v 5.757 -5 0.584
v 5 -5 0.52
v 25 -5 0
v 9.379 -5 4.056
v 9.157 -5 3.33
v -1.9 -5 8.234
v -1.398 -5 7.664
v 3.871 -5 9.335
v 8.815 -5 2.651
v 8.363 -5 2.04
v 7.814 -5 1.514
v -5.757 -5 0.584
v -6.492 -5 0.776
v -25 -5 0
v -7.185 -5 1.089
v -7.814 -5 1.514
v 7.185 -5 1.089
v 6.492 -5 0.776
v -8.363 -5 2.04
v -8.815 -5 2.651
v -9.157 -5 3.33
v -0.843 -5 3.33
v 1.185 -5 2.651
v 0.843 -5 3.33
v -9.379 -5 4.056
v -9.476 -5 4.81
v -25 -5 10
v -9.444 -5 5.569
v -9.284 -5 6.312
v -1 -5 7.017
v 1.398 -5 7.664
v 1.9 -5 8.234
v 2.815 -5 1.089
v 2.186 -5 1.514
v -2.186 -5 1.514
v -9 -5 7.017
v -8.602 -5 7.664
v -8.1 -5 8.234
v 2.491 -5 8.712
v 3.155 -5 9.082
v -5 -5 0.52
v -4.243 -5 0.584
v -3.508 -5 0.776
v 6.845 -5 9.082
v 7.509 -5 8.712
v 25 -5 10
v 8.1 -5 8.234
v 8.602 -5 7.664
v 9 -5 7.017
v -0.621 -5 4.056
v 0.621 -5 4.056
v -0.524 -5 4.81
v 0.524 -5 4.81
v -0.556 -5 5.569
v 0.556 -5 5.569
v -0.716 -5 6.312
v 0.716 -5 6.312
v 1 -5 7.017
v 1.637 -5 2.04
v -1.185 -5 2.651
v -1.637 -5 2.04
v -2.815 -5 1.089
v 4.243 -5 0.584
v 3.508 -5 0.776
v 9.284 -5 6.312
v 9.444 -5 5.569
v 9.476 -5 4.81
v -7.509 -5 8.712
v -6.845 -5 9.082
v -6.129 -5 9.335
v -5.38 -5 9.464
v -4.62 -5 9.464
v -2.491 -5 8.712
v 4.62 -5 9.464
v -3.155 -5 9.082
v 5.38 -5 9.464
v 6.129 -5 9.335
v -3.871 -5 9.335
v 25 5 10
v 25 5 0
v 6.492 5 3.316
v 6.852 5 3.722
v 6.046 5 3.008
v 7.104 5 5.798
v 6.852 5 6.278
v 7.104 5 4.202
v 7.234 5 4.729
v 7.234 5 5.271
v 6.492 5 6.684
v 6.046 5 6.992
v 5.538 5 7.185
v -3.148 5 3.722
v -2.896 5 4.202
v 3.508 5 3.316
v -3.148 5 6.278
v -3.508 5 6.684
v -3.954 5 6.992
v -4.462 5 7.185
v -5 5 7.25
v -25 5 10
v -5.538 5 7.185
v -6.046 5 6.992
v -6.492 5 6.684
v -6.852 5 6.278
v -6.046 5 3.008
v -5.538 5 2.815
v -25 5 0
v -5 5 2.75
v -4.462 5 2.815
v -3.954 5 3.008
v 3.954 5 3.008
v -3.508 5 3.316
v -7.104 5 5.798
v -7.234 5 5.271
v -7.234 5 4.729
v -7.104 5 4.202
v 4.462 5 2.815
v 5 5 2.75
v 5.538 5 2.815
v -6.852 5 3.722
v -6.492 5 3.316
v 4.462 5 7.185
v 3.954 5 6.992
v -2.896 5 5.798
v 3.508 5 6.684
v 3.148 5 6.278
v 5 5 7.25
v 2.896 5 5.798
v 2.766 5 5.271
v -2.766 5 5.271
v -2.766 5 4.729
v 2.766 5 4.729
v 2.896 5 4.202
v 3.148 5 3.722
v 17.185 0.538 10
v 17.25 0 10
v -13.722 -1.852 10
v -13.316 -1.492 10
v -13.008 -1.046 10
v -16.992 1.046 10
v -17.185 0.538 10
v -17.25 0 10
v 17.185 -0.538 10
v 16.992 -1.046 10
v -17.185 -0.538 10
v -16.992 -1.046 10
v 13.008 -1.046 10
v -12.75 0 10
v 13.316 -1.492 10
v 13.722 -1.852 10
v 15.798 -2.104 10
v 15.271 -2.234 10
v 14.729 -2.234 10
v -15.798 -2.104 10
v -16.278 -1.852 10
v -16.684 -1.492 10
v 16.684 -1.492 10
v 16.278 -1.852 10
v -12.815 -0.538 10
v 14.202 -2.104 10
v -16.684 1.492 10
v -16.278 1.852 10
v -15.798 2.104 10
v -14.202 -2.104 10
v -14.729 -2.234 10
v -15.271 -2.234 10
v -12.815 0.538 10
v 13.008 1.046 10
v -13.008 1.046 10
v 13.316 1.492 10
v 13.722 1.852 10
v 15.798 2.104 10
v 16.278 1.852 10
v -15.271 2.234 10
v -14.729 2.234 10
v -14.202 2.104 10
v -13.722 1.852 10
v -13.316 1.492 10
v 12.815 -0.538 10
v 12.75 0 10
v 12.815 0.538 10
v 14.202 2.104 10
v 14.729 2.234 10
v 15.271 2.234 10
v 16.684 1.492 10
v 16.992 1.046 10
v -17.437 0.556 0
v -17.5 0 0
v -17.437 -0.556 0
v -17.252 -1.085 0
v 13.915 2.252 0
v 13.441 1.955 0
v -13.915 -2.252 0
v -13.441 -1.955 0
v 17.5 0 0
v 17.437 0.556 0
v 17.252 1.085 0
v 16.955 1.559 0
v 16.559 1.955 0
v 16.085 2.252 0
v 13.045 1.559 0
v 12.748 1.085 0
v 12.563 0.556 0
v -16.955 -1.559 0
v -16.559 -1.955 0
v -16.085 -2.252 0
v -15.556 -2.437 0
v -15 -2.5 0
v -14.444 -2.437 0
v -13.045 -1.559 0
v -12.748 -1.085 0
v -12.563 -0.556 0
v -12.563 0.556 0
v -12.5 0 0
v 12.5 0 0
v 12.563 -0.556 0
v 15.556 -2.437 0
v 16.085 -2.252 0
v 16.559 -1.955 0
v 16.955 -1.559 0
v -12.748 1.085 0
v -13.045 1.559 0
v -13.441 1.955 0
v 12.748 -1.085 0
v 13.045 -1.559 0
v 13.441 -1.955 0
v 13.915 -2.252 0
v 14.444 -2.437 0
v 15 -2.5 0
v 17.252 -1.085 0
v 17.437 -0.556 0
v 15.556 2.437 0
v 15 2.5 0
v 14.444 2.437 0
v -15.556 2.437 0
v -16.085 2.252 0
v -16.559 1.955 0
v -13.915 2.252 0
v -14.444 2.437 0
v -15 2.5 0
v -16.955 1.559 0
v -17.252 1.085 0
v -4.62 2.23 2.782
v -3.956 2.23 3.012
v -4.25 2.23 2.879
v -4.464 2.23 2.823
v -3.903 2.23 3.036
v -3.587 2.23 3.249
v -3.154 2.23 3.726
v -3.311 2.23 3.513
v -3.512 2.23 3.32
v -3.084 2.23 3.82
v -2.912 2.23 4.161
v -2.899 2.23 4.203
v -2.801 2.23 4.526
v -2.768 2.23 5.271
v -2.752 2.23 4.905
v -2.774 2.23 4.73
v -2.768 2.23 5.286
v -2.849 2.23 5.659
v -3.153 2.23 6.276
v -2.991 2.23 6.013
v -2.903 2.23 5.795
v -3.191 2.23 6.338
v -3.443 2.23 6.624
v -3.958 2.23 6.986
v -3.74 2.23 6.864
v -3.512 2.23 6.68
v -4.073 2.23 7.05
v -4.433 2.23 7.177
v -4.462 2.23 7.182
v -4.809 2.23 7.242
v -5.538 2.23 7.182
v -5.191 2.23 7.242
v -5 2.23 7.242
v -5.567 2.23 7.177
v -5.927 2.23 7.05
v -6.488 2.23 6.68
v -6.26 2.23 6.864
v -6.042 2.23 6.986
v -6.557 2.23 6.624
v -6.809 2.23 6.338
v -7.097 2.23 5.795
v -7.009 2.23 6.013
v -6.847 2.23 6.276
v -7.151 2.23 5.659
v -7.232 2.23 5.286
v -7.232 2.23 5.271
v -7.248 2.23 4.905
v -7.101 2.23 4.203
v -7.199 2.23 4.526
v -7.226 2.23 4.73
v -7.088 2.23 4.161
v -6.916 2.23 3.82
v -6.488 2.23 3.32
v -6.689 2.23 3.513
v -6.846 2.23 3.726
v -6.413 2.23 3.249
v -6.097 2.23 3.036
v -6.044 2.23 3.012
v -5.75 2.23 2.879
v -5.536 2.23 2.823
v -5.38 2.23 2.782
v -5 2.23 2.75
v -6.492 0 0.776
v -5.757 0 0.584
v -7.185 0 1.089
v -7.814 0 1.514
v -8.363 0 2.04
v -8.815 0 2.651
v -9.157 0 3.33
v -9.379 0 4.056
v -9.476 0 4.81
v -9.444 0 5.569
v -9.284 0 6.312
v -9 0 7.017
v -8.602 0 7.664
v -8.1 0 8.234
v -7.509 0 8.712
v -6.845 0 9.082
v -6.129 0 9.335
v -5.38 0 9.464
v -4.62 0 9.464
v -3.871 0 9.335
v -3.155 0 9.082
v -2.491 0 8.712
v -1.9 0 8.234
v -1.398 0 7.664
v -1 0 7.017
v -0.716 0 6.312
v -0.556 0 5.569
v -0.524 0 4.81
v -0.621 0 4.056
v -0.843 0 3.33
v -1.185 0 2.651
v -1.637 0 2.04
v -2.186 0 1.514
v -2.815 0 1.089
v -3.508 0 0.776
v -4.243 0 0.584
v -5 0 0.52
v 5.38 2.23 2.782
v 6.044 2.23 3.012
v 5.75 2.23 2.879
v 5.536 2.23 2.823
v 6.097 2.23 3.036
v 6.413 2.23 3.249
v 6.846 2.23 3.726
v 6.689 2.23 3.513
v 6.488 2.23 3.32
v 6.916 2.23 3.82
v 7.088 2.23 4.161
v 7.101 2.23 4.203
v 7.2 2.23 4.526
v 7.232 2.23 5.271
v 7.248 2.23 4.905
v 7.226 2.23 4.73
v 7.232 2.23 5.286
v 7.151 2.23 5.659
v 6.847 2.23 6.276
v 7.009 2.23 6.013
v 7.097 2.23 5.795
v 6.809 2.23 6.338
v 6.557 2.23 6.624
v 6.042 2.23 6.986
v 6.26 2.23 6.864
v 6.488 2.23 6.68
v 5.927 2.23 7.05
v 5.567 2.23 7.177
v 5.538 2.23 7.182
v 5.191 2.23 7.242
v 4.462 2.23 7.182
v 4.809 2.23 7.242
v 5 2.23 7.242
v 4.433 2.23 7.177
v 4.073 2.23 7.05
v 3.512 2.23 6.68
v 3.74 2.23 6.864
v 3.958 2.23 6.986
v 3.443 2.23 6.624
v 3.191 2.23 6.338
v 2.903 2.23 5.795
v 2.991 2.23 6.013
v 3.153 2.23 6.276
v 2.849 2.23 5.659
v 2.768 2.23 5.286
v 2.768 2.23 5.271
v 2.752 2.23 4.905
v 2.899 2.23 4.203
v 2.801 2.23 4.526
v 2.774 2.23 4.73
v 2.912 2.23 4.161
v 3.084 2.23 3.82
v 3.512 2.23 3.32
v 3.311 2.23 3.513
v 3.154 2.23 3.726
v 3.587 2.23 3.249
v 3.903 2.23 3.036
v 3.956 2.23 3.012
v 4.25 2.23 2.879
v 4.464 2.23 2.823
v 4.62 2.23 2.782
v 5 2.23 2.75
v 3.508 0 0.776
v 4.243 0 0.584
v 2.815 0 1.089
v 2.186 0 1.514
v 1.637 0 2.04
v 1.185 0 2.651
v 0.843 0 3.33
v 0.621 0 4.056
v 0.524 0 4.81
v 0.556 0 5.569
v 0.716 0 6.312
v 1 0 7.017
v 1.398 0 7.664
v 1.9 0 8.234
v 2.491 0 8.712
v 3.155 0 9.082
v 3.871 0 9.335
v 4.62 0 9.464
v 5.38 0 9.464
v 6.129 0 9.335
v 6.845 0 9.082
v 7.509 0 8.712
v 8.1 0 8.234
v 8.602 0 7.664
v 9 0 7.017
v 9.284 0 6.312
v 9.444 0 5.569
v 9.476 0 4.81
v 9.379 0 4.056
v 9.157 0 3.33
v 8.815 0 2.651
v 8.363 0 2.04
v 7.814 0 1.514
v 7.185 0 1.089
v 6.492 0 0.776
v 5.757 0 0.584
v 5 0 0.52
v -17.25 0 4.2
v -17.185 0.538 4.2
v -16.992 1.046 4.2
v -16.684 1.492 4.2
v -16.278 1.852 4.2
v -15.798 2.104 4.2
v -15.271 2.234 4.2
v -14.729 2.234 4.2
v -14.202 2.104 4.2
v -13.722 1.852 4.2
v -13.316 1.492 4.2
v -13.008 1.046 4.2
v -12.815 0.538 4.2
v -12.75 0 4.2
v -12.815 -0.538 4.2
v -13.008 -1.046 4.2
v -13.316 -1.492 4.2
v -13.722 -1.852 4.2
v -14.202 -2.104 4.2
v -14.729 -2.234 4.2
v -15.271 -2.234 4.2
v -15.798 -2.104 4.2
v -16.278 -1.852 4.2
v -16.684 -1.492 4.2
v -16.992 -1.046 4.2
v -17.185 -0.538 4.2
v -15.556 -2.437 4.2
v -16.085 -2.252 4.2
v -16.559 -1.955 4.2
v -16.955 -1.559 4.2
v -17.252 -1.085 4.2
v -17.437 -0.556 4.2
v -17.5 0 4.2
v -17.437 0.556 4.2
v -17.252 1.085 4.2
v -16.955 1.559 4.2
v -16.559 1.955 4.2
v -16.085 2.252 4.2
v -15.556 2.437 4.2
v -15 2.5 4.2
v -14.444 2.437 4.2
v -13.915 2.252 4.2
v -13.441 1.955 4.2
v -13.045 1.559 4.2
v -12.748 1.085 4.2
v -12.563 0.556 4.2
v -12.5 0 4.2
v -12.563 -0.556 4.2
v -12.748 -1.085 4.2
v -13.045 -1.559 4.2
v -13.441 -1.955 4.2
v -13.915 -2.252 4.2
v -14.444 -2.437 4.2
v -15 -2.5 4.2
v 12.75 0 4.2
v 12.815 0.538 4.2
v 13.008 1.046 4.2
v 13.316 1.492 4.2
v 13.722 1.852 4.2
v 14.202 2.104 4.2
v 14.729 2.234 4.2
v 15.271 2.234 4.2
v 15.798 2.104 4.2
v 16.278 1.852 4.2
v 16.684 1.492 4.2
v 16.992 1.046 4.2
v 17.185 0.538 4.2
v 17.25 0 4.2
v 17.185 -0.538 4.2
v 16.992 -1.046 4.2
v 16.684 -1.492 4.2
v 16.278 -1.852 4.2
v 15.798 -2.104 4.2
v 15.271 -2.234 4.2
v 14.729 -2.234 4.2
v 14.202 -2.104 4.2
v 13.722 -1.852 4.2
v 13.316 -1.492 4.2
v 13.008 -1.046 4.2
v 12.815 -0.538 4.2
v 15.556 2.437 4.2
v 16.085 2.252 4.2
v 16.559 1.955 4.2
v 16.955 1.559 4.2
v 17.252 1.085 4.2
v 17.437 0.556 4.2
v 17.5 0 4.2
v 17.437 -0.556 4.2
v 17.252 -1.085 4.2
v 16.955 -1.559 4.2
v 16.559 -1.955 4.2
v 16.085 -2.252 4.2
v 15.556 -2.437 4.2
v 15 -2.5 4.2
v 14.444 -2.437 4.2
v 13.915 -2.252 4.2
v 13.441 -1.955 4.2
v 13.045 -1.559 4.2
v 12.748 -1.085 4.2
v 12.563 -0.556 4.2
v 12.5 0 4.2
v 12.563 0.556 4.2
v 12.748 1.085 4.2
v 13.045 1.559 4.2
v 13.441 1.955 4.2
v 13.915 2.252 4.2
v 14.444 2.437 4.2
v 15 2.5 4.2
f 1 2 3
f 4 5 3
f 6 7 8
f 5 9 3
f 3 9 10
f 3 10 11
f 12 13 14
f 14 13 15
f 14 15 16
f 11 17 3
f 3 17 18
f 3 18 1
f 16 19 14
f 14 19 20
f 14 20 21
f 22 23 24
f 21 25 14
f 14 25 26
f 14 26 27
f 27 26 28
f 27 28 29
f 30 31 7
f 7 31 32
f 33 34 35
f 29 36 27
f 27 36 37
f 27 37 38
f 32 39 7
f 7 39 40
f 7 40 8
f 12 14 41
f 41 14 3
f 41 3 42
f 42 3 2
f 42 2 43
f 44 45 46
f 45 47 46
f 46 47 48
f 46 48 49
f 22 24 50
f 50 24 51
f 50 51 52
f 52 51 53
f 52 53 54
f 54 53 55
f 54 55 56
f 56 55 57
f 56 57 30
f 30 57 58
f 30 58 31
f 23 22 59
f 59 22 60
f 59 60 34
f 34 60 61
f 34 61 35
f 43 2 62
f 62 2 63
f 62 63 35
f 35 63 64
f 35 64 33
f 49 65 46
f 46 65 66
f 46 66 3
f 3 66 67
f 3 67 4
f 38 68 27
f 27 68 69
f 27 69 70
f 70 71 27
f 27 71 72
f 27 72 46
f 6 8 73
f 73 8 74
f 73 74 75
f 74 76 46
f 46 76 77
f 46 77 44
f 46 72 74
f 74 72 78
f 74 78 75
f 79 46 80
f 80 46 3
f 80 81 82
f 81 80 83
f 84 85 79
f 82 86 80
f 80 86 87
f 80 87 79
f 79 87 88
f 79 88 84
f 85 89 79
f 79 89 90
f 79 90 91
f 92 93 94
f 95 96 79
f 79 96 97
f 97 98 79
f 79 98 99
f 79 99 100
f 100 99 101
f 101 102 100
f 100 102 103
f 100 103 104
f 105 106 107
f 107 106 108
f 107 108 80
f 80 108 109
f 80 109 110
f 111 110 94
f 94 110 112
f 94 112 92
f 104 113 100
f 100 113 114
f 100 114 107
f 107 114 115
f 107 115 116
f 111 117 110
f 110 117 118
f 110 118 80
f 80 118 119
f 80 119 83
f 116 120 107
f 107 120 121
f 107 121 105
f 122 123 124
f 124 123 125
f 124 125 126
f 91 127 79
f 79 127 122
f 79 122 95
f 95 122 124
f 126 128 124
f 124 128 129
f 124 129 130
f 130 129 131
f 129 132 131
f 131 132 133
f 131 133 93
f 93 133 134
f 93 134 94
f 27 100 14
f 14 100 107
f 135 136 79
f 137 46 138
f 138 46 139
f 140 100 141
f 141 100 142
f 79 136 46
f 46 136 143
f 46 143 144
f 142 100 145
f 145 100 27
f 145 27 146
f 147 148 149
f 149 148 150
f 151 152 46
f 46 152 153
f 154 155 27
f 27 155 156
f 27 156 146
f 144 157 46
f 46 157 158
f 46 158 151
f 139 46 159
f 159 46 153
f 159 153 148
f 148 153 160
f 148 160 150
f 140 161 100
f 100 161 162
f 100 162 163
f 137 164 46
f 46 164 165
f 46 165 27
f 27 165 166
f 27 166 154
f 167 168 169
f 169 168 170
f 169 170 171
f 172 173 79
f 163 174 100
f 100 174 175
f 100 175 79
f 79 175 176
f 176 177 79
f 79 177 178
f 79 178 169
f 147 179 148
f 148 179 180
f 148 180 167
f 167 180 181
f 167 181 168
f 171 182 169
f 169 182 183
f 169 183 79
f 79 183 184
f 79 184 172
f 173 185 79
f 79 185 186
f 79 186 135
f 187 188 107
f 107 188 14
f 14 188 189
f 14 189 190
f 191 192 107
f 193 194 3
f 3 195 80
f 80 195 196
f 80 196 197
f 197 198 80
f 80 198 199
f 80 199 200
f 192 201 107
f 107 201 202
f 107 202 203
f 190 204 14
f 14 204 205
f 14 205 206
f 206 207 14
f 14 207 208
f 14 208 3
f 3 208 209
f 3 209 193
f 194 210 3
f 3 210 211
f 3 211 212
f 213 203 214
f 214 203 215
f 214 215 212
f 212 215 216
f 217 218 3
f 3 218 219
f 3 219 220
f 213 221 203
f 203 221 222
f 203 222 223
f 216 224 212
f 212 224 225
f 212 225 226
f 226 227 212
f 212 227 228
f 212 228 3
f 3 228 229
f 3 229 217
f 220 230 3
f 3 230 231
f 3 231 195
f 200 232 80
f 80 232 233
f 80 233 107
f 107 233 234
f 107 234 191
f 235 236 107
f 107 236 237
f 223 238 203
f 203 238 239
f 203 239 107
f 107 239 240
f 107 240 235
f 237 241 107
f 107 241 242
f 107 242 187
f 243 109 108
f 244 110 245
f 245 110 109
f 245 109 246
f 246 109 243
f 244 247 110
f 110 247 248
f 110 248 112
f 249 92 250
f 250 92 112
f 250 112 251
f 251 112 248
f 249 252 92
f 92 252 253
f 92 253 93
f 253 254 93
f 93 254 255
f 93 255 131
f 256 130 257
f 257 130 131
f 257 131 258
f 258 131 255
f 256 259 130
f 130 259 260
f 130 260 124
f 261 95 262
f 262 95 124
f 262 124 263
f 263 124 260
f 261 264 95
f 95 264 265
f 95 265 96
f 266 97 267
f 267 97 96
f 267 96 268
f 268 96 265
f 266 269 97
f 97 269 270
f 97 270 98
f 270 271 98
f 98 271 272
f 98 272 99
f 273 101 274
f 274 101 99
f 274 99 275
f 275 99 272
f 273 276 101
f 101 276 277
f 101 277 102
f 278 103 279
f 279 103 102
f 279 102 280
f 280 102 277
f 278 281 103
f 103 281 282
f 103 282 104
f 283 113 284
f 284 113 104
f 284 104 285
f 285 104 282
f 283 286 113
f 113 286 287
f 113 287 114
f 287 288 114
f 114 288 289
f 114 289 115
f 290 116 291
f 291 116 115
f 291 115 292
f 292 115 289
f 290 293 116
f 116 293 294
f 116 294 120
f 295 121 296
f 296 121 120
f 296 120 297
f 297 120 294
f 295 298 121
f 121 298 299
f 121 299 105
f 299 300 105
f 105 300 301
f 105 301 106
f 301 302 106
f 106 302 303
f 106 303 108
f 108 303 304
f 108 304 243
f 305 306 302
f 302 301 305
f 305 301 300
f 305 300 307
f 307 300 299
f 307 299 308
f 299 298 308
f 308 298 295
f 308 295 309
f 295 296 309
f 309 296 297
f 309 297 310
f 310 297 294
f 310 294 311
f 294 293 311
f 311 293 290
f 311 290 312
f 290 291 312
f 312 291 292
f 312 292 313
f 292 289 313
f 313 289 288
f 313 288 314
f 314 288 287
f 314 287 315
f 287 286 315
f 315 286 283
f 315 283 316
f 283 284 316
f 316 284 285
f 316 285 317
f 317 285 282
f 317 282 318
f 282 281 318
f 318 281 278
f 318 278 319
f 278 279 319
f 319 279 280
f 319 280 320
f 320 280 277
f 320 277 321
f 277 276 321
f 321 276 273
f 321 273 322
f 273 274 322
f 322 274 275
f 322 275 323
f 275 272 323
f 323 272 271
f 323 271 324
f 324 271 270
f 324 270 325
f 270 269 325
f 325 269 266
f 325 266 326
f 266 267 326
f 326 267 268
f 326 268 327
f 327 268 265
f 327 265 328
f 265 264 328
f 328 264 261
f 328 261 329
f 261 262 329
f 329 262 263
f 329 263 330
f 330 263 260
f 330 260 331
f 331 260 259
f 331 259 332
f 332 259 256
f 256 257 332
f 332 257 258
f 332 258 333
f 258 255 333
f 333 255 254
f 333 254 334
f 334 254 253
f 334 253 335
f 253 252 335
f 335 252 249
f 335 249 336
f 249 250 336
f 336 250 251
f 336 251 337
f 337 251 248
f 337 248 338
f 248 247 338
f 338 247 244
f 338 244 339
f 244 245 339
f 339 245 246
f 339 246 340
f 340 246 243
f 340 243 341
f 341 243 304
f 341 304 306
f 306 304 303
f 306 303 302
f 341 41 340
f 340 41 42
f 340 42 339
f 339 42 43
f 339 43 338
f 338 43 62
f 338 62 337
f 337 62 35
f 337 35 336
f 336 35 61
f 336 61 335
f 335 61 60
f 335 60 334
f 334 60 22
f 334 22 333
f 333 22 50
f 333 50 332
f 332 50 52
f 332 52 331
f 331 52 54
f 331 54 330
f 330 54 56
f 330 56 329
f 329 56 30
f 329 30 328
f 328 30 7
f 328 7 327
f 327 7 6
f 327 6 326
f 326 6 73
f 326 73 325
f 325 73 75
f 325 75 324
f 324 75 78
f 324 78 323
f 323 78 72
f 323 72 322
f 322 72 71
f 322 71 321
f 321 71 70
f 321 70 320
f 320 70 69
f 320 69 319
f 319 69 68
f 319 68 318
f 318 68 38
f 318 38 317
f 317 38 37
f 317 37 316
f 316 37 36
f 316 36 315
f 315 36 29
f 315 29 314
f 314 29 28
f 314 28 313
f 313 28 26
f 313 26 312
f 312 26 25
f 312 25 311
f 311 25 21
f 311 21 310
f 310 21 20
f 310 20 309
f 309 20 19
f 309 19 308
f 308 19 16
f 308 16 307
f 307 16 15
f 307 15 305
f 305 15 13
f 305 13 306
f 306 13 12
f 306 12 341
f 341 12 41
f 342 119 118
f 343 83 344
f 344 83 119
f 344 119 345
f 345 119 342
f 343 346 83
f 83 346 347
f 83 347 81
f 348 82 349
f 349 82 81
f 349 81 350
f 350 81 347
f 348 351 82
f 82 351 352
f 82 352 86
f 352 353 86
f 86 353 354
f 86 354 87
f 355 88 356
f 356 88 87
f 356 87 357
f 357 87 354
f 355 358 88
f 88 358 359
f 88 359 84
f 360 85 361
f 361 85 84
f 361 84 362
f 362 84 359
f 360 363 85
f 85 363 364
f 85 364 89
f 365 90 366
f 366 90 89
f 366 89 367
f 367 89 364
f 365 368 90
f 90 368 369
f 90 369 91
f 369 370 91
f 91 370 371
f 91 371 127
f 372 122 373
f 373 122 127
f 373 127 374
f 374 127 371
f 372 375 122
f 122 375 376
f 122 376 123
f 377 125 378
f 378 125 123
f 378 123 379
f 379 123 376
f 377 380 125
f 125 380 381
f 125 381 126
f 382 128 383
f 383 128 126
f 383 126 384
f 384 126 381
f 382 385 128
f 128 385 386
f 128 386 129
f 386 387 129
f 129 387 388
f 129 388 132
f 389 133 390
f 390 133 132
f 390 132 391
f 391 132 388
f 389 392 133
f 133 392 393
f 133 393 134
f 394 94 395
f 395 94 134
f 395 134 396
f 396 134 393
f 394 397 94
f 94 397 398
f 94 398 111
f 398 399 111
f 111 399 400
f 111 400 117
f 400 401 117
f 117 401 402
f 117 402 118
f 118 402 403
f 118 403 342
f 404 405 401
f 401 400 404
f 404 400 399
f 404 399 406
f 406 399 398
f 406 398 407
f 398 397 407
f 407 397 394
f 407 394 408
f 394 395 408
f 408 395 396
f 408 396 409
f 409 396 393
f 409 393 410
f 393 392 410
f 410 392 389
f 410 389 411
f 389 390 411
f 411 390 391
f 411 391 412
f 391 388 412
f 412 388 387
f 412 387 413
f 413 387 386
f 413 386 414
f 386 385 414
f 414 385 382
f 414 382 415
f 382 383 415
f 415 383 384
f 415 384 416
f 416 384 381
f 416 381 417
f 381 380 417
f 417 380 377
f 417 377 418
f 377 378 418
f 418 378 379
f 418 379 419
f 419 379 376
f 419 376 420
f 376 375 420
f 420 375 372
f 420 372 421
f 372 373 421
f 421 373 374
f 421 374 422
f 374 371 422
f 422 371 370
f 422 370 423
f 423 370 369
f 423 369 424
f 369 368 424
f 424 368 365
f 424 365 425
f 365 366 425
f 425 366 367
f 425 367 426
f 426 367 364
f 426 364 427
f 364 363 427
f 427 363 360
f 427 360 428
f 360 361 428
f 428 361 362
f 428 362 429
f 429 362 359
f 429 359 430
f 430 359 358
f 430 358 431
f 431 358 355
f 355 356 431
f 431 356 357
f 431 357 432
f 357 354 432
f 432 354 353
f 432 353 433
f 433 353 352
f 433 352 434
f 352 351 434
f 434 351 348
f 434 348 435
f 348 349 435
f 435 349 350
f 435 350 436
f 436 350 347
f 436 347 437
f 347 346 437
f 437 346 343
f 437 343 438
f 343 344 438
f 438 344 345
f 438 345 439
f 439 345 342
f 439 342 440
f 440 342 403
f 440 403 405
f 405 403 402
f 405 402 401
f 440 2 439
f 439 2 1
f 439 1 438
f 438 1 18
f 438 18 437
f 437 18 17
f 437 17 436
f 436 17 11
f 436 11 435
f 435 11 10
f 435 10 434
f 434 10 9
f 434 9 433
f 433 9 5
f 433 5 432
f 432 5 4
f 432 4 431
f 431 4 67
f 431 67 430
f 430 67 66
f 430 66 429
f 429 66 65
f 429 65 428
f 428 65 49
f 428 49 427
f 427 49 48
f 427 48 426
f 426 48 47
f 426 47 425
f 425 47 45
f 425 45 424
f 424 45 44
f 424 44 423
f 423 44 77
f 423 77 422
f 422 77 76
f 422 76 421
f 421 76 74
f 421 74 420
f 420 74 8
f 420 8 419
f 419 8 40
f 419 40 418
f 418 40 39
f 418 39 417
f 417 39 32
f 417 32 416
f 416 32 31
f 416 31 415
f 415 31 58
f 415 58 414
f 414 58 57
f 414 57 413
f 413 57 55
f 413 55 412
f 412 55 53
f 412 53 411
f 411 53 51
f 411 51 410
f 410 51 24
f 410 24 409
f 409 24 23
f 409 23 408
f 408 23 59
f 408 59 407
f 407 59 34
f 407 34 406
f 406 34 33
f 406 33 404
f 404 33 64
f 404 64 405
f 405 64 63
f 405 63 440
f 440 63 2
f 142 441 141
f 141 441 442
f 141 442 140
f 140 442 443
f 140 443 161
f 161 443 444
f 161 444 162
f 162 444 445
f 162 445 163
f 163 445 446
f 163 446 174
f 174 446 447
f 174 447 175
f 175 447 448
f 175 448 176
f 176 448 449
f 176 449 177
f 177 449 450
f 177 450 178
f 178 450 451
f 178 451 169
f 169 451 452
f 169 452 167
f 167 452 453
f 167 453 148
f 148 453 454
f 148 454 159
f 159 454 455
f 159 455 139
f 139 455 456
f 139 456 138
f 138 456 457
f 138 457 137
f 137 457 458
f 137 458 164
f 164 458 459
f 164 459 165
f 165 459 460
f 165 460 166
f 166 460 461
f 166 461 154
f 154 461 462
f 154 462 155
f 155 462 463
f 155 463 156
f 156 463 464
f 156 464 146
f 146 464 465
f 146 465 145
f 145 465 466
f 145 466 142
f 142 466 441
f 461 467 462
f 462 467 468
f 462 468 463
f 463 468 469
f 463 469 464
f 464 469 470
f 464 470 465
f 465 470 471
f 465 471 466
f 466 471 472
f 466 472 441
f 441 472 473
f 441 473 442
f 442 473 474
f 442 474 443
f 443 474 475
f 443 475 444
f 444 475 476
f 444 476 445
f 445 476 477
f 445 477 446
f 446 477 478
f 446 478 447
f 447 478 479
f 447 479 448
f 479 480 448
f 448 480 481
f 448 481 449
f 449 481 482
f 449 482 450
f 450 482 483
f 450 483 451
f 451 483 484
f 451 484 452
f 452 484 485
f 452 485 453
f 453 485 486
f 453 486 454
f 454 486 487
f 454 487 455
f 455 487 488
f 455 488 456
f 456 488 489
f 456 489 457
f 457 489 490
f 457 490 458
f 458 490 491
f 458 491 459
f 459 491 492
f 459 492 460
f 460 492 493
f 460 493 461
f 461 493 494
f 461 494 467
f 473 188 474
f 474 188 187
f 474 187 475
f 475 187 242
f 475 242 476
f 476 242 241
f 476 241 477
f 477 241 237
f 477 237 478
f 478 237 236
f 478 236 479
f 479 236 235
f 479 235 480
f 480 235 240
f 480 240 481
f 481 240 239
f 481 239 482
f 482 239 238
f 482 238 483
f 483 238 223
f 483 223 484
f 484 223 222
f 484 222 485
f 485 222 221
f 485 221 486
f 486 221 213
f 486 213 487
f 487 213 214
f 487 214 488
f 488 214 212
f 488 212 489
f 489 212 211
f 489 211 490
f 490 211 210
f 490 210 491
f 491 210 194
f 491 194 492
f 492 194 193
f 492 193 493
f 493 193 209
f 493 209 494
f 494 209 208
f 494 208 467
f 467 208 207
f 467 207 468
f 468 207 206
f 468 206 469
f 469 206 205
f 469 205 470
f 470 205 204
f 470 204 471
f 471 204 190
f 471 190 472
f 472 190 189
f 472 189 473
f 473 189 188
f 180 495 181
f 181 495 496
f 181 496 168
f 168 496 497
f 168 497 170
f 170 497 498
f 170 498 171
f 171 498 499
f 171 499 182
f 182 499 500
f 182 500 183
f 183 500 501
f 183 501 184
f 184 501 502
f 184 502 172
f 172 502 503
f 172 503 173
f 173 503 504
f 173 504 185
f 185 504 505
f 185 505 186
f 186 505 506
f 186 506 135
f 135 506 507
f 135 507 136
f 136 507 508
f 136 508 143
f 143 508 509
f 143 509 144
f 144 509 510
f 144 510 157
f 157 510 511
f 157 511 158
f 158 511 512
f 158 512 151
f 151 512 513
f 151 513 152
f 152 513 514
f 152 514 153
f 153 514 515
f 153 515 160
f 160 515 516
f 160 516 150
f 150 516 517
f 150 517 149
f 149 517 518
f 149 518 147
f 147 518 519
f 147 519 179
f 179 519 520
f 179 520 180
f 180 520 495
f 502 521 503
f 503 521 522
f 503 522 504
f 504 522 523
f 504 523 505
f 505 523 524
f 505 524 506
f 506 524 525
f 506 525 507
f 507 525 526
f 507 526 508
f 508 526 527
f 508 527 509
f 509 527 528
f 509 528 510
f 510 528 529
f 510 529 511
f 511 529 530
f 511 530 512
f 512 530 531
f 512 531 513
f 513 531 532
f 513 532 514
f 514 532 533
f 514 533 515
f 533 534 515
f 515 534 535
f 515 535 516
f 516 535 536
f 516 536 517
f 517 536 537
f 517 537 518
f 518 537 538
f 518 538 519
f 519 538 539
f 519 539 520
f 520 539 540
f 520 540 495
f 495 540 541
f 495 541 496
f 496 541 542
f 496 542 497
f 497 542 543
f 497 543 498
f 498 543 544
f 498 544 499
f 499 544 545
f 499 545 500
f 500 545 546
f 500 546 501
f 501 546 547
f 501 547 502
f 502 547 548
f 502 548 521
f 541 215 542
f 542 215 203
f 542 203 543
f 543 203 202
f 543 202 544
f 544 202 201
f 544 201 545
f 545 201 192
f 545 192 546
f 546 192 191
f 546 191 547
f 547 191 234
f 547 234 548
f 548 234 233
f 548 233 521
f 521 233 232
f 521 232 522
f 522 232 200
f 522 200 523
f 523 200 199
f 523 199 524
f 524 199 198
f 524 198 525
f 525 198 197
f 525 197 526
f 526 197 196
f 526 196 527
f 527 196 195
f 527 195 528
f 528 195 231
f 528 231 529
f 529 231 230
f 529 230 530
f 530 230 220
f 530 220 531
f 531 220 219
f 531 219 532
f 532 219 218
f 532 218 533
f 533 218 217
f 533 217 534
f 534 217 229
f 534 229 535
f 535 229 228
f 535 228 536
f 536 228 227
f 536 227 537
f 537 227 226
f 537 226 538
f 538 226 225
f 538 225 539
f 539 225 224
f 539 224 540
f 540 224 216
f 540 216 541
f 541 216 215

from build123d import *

# Parameters (mm, degrees)
SKETCH1_W                               = 50
SKETCH1_H                               = 10
BOSS_EXTRUDE1_DEPTH                     = 10
CSK_FOR_M4_SFHCS1_AT_2_COUNT            = 2
CSK_FOR_M4_SFHCS1_AT_2_PITCH            = 10
CBORE_FOR_M5_HEX_HEAD_BOLT1_D           = 4.5
CBORE_FOR_M5_HEX_HEAD_BOLT1_CBORE_D     = 5
CBORE_FOR_M5_HEX_HEAD_BOLT1_CBORE_DEPTH = 4.2


with BuildPart() as part:
    # Sketch1 → Boss-Extrude1 (new body)
    with BuildSketch(Plane.XY):
        Rectangle(SKETCH1_W, SKETCH1_H)
    extrude(amount=BOSS_EXTRUDE1_DEPTH)

    # Sketch9 → CSK for M4 SFHCS1 (revolve, cut)
    with BuildSketch(Plane(origin=(5, -5, 5), x_dir=(0, 0, -1), z_dir=(1, 0, 0))):
        Polygon((0, 0), (0, 10), (2.25, 10), (2.25, 7.23), (4.48, 5), (4.48, 0), align=None)
    csk_for_m4_sfhcs1 = revolve(axis=Axis((5, -11.35, 5), (0, 1, 0)), mode=Mode.SUBTRACT)

    # CSK for M4 SFHCS1 at 2: CSK for M4 SFHCS1 ×2
    with Locations(*[(-i * CSK_FOR_M4_SFHCS1_AT_2_PITCH, 0, 0) for i in range(1, CSK_FOR_M4_SFHCS1_AT_2_COUNT)]):
        add(csk_for_m4_sfhcs1, mode=Mode.SUBTRACT)

    # CBORE for M5 Hex Head Bolt1 (through all)
    with Locations(Plane(origin=(0, 0, 0), x_dir=(-1, 0, 0), z_dir=(0, 0, -1))):
        with Locations((-15, 0), (15, 0)):
            CounterBoreHole(CBORE_FOR_M5_HEX_HEAD_BOLT1_D / 2, CBORE_FOR_M5_HEX_HEAD_BOLT1_CBORE_D / 2, CBORE_FOR_M5_HEX_HEAD_BOLT1_CBORE_DEPTH)


solid = part.part
